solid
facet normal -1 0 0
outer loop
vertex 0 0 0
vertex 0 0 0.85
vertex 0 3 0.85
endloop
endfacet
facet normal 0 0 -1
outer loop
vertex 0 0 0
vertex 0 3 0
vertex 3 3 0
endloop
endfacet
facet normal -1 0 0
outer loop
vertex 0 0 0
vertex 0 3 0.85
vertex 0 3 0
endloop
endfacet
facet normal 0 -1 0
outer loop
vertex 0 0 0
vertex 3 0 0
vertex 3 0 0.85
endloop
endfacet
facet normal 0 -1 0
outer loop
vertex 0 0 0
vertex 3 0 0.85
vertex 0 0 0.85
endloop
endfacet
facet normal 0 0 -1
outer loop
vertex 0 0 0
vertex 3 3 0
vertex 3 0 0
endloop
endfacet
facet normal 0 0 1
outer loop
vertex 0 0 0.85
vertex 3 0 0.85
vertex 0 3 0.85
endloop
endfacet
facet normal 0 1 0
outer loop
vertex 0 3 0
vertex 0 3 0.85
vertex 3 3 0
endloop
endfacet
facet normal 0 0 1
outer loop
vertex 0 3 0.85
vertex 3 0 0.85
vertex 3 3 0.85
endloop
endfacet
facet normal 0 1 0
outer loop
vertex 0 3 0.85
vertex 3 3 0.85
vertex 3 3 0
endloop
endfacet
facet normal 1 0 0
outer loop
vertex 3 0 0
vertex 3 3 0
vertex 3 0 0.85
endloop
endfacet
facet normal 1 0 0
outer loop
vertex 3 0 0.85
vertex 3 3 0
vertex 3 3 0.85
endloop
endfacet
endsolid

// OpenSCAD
/* Warning, this is a very basic generator with a lot of approximation 
input data : [VQFN, RCB, 3x3x0.85mm, 20, , A, C04-21378A]
generated by com.zoubworld.electronics.cad.model3d.Basic
Date : Sun Feb 15 10:50:49 CET 2026
*/

//body
color("black")
translate([0,0,0])
cube([3.0,3.0,0.85], center=false);
